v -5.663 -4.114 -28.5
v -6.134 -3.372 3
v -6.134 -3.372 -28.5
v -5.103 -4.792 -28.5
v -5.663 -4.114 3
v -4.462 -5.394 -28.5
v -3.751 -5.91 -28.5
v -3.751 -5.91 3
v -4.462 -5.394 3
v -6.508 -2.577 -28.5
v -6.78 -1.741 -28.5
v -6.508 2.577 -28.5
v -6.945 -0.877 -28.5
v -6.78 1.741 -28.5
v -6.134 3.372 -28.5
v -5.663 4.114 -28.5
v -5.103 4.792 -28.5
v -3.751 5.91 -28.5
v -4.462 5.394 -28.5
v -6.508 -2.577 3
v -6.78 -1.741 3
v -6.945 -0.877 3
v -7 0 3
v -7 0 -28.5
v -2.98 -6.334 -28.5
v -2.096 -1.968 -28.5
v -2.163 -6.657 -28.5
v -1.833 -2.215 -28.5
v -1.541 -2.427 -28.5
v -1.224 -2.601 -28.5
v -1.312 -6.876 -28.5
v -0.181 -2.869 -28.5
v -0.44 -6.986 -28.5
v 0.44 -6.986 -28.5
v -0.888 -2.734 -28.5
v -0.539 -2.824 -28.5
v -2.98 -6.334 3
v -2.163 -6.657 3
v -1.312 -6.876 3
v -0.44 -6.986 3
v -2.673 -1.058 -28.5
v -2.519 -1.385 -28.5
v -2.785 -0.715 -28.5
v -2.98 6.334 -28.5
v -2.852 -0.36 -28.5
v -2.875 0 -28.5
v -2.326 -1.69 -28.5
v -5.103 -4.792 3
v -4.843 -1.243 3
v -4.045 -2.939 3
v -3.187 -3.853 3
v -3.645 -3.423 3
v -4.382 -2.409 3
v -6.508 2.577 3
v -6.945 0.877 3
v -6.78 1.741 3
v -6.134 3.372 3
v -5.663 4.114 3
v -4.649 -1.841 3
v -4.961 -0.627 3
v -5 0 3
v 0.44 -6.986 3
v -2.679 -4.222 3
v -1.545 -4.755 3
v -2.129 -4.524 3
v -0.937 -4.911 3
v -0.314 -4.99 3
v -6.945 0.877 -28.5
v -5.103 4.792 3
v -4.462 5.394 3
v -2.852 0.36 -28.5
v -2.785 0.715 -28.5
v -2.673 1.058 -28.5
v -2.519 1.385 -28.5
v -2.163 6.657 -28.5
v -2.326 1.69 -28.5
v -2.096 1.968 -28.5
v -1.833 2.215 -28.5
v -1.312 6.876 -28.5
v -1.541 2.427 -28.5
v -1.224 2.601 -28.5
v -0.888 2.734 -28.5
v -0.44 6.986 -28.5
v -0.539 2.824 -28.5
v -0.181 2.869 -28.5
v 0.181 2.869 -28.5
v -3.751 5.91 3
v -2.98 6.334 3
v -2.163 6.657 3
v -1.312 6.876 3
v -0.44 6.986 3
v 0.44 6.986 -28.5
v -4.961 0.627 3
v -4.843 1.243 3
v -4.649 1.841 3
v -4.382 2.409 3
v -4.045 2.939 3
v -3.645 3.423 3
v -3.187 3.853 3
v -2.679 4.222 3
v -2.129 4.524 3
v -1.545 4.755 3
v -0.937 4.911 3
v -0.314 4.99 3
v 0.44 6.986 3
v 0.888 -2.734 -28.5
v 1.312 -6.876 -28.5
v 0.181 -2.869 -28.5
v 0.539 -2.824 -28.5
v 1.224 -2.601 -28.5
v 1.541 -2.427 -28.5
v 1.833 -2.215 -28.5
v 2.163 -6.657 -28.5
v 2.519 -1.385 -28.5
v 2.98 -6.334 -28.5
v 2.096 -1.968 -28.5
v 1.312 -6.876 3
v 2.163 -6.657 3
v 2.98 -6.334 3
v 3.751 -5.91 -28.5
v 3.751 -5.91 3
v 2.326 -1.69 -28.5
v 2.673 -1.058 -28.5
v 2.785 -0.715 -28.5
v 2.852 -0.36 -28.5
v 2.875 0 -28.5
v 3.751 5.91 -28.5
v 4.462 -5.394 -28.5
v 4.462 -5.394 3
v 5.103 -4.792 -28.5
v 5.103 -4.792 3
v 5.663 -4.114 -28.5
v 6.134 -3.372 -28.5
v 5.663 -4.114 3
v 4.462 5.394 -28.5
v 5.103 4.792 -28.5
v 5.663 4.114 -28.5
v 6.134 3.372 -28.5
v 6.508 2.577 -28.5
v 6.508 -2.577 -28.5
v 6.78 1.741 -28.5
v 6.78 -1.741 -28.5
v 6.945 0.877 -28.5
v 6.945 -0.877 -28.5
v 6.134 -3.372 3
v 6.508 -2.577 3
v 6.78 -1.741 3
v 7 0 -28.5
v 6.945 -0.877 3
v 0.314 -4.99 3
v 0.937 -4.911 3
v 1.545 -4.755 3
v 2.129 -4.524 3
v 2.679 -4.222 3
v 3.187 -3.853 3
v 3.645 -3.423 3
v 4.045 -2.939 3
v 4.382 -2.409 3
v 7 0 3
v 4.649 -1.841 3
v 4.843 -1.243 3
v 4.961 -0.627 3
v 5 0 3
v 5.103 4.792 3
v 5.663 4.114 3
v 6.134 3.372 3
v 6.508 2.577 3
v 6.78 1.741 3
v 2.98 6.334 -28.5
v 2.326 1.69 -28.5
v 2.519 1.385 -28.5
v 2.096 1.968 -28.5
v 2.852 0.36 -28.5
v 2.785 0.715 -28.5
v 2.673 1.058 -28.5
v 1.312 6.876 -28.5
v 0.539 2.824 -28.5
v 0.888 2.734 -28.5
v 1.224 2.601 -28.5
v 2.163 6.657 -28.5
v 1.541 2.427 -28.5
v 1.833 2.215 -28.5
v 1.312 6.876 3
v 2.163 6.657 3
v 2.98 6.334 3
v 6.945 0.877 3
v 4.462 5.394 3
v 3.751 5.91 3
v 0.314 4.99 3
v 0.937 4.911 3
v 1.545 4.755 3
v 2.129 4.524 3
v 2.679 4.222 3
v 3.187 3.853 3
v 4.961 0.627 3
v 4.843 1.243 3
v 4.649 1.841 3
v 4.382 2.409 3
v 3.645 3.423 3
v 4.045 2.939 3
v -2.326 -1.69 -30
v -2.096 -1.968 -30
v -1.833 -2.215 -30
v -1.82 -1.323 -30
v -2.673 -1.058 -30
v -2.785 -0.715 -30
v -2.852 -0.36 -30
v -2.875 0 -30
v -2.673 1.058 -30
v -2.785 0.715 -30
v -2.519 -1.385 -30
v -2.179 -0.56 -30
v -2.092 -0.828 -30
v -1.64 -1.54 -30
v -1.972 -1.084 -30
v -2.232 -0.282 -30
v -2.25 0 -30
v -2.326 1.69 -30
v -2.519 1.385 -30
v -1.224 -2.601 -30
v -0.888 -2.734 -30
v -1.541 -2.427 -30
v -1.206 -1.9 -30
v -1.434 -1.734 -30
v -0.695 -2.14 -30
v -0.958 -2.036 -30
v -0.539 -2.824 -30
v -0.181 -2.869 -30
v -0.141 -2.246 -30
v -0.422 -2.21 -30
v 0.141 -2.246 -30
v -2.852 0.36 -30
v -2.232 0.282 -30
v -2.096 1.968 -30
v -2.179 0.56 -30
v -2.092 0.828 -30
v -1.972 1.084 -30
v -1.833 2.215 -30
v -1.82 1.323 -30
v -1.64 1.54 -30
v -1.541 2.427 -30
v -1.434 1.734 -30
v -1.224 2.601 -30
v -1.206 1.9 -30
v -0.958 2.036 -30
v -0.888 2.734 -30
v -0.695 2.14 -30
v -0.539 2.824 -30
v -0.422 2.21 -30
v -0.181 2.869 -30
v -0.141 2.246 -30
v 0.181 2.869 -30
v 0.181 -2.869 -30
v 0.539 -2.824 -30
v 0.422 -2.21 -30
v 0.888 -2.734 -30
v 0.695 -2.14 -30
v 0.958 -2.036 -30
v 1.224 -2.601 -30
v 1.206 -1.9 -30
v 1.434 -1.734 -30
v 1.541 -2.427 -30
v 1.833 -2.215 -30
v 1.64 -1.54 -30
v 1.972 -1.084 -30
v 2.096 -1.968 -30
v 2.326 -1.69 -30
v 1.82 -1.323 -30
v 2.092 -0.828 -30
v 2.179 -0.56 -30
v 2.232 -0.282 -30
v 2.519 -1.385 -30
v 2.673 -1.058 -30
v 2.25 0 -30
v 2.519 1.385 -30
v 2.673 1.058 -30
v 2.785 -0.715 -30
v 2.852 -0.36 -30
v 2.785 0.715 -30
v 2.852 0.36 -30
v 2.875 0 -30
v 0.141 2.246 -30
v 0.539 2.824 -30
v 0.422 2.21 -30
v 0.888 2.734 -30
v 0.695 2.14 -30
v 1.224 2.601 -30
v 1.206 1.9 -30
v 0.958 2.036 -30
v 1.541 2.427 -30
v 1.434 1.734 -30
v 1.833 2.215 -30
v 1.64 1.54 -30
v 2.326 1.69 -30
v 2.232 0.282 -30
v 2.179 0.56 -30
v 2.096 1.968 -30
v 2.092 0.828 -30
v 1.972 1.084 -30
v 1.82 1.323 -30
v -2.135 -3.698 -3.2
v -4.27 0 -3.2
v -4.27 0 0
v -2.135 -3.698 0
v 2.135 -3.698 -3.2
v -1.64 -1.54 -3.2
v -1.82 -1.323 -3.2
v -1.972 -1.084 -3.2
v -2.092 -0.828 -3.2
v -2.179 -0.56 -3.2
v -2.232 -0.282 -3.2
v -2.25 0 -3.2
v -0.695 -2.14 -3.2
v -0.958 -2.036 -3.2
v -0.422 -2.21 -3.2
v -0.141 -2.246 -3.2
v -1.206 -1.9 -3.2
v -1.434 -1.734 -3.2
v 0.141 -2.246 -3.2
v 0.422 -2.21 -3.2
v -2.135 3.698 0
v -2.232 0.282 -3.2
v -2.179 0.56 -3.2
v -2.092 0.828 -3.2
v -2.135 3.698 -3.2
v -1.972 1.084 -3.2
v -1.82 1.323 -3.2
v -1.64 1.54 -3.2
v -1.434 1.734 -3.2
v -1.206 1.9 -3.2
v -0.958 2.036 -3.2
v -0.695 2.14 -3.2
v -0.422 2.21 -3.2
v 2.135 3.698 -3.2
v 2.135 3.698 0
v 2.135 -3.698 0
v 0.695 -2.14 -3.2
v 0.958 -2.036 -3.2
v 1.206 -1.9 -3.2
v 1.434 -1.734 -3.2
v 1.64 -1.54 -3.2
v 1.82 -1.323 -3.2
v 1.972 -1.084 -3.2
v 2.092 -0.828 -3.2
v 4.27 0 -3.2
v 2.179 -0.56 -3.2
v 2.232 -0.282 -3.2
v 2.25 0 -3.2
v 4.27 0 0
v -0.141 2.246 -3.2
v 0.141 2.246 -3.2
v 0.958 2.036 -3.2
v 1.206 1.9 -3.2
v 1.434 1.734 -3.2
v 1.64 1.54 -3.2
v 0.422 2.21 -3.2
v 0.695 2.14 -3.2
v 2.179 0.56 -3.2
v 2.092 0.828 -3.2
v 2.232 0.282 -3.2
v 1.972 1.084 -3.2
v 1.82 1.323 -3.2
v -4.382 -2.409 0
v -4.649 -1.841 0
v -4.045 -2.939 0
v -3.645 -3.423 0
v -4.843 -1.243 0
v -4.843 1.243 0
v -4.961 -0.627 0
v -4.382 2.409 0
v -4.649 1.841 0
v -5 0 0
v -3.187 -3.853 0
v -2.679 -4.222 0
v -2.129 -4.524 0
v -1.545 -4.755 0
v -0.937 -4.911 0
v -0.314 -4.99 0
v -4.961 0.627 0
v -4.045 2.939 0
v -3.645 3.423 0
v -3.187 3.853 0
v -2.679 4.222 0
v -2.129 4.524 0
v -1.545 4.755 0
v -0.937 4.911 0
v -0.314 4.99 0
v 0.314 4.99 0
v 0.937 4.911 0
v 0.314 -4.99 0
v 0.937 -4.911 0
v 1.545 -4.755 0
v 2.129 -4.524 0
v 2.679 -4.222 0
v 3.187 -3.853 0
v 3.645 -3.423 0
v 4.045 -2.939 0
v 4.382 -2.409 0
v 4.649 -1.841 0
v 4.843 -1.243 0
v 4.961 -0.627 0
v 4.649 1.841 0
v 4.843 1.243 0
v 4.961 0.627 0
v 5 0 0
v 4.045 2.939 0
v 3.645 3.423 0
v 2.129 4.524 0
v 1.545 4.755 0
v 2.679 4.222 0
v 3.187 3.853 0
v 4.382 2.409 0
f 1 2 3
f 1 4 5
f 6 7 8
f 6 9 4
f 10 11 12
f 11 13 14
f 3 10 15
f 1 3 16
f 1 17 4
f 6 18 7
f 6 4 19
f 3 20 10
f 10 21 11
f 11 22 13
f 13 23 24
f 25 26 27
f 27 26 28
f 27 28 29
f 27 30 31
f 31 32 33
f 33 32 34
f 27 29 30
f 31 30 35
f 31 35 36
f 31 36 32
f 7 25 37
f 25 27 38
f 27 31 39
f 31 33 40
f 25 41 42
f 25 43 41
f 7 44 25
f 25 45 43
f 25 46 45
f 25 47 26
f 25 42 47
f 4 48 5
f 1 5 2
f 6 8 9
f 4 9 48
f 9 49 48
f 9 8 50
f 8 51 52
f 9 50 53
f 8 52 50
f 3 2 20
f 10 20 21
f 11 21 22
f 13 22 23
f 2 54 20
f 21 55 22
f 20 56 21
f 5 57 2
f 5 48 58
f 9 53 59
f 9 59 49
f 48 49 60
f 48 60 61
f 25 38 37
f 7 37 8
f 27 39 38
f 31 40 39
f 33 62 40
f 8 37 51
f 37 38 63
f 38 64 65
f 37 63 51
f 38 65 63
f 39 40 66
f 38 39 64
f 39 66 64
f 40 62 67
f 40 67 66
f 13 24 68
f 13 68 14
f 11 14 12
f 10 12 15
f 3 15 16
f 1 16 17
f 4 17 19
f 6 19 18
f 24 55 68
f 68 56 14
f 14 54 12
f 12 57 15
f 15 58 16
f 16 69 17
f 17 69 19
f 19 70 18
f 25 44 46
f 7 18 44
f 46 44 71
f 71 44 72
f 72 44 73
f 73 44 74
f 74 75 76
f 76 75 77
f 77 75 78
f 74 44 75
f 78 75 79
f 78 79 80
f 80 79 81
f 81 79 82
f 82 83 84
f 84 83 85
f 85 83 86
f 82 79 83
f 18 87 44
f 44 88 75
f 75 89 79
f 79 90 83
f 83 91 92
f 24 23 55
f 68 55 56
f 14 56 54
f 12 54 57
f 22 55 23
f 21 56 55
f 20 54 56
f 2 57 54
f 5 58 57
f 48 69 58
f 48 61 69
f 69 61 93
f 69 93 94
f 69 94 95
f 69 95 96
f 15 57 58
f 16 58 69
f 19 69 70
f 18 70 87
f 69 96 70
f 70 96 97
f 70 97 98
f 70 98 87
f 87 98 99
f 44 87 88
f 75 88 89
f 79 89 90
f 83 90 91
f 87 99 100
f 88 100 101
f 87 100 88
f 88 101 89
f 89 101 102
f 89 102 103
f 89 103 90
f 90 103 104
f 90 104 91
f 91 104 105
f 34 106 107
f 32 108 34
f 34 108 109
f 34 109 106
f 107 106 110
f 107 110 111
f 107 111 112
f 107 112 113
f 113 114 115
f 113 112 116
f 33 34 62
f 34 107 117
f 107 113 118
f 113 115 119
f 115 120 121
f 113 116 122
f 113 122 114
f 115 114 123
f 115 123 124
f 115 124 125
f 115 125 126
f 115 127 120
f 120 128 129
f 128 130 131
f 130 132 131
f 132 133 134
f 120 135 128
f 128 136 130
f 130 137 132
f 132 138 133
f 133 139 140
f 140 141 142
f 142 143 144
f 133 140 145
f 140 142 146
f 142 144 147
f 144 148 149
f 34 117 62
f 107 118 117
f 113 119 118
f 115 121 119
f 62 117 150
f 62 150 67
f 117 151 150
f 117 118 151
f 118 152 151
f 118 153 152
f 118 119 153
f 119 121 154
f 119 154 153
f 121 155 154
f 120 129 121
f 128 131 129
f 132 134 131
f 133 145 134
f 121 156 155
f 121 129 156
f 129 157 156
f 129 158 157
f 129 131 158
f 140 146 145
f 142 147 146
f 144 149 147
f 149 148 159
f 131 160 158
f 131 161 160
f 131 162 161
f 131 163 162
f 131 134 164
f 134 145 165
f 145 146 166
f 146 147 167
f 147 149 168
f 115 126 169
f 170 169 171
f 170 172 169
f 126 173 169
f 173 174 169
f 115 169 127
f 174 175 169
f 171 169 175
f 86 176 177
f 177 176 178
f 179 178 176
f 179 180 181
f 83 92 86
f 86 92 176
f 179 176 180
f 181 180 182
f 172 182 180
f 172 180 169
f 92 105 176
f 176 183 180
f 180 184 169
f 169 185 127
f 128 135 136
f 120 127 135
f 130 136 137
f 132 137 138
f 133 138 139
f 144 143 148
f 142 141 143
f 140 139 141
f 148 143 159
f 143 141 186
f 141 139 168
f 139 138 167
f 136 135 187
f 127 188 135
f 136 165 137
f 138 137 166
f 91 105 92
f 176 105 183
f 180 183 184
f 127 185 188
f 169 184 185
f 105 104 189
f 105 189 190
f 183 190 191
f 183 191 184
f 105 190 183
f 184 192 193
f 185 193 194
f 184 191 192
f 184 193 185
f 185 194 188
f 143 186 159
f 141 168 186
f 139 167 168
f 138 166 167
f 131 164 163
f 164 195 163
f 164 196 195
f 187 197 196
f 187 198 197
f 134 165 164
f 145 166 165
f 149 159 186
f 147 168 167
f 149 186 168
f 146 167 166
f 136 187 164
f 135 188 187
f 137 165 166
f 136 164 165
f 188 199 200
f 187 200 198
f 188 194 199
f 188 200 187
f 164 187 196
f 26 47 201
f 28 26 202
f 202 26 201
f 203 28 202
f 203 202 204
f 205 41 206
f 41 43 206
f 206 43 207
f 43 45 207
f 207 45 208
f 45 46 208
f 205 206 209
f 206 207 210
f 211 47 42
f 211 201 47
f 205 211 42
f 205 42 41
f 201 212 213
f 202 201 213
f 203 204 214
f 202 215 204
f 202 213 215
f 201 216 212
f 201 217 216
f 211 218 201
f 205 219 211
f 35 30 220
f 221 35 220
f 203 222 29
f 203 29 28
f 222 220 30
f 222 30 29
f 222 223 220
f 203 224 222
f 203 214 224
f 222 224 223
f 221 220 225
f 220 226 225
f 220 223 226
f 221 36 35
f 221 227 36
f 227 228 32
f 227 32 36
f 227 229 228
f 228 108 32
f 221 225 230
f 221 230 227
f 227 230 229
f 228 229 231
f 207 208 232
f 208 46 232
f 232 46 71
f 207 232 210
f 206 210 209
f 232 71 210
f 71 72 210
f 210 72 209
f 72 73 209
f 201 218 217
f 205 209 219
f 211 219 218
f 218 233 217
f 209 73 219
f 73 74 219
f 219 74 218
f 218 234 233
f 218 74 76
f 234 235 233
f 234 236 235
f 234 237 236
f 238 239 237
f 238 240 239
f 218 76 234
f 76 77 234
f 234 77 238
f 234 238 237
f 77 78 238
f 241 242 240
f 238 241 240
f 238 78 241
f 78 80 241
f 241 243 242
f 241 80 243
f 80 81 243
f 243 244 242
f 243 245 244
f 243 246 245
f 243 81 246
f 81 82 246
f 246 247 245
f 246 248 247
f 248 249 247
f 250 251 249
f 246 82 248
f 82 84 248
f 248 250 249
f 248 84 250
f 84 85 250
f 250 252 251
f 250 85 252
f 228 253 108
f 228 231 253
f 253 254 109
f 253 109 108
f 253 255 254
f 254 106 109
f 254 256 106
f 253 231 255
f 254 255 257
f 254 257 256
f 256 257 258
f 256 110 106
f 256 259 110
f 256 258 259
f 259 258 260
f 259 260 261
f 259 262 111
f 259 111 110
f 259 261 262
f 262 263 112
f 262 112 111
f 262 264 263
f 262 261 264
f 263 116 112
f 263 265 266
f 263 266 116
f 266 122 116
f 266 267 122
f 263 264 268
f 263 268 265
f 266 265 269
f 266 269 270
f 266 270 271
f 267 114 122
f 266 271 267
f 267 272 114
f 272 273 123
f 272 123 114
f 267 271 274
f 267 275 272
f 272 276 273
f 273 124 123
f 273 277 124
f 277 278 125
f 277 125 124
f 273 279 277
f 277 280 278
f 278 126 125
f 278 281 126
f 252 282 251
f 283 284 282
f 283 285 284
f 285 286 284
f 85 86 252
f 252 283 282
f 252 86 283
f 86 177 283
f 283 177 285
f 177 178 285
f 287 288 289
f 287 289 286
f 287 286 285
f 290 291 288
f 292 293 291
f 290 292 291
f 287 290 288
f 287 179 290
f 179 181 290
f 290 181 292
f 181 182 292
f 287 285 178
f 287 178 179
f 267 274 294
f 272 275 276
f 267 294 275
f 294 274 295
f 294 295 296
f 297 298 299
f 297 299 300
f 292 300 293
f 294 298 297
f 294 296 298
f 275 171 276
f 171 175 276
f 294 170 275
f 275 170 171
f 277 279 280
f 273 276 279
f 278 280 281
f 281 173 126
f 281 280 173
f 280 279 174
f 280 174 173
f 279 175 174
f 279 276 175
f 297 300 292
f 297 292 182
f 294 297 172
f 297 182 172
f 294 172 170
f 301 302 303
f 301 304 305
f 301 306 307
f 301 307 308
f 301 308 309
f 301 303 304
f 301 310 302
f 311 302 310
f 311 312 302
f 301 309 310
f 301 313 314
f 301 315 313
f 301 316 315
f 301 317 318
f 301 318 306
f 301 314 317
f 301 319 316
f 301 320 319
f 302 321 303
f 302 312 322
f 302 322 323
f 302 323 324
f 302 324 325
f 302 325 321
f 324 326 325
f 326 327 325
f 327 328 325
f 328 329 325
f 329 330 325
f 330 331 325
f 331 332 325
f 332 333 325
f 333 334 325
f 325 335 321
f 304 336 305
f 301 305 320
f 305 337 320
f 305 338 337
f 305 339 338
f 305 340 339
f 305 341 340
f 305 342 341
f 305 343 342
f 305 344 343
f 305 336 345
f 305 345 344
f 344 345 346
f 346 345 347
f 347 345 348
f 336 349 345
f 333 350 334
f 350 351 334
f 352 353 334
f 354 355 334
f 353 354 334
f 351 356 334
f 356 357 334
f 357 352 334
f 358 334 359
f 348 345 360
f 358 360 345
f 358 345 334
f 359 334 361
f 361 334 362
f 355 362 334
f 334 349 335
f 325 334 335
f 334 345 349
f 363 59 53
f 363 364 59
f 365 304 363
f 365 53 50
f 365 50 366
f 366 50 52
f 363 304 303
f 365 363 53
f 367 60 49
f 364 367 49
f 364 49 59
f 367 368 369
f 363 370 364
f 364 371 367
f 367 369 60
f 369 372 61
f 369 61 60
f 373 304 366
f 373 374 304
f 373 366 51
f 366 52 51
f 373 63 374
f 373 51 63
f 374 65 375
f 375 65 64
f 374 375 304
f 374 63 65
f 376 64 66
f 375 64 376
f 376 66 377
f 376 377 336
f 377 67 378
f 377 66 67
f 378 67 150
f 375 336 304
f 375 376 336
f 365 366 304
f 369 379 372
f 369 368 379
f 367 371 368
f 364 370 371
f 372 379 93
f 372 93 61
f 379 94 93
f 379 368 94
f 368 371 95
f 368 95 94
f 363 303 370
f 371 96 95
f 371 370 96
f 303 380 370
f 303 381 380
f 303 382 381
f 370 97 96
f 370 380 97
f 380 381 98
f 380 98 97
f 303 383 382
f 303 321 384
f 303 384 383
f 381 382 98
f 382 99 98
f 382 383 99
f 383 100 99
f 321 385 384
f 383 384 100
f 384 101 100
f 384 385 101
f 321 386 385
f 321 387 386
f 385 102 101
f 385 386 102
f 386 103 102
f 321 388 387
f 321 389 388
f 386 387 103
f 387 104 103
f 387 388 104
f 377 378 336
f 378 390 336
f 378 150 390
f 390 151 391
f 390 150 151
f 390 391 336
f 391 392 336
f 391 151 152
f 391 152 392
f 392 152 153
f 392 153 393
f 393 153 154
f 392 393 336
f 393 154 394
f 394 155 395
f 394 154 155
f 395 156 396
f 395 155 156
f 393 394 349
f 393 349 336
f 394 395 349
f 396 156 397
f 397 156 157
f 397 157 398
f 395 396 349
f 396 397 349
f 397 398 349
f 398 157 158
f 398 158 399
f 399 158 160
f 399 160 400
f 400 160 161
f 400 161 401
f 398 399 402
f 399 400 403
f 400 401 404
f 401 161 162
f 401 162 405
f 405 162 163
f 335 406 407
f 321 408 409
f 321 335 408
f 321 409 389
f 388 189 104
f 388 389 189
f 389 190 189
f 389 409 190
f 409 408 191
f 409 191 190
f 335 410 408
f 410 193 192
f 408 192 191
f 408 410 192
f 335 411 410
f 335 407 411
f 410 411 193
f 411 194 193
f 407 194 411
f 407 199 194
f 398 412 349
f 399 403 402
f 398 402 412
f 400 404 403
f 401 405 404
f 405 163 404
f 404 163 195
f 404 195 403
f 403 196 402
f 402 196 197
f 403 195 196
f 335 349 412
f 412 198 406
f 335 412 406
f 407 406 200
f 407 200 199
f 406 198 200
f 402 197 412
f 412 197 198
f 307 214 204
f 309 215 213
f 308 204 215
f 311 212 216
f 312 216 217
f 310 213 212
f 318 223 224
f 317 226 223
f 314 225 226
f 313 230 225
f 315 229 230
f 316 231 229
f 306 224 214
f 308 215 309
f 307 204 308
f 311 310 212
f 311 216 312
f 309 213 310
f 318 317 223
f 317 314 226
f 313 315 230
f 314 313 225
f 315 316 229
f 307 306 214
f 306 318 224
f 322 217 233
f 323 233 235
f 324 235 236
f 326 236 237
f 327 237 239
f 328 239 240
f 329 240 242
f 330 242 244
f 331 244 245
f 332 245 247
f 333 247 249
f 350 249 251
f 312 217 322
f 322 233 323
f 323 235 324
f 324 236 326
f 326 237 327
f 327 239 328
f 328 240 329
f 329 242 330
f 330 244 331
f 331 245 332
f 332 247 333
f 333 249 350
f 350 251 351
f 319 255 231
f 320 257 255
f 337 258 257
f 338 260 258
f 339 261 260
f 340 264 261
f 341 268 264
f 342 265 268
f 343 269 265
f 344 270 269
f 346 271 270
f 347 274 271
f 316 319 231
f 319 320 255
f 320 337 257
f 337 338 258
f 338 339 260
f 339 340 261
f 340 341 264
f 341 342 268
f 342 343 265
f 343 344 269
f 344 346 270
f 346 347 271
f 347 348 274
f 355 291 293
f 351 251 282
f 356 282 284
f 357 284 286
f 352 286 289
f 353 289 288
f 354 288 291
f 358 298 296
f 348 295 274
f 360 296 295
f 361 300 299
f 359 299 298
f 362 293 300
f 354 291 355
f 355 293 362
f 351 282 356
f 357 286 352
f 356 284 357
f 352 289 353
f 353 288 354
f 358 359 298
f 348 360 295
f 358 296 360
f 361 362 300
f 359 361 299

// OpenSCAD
$fn = 50;


difference() {
	union() {
		translate(v = [0, 0, -28.5000000000]) {
			cylinder(h = 31.5000000000, r = 7.0000000000);
		}
		#translate(v = [0, 0, -30.0000000000]) {
			cylinder(h = 30, r = 2.8750000000);
		}
	}
	union() {
		translate(v = [0, 0, 0]) {
			rotate(a = [0, 0, 0]) {
				difference() {
					union() {
						translate(v = [0, 0, -3.2000000000]) {
							linear_extrude(height = 3.2000000000) {
								polygon(points = [[4.2698000000, 0.0000000000], [2.1349000000, 3.6977552691], [-2.1349000000, 3.6977552691], [-4.2698000000, 0.0000000000], [-2.1349000000, -3.6977552691], [2.1349000000, -3.6977552691]]);
							}
						}
					}
					union();
				}
			}
		}
		#cylinder(h = 3, r = 5.0000000000);
		#translate(v = [0, 0, -100.0000000000]) {
			cylinder(h = 200, r = 2.2500000000);
		}
	}
}
